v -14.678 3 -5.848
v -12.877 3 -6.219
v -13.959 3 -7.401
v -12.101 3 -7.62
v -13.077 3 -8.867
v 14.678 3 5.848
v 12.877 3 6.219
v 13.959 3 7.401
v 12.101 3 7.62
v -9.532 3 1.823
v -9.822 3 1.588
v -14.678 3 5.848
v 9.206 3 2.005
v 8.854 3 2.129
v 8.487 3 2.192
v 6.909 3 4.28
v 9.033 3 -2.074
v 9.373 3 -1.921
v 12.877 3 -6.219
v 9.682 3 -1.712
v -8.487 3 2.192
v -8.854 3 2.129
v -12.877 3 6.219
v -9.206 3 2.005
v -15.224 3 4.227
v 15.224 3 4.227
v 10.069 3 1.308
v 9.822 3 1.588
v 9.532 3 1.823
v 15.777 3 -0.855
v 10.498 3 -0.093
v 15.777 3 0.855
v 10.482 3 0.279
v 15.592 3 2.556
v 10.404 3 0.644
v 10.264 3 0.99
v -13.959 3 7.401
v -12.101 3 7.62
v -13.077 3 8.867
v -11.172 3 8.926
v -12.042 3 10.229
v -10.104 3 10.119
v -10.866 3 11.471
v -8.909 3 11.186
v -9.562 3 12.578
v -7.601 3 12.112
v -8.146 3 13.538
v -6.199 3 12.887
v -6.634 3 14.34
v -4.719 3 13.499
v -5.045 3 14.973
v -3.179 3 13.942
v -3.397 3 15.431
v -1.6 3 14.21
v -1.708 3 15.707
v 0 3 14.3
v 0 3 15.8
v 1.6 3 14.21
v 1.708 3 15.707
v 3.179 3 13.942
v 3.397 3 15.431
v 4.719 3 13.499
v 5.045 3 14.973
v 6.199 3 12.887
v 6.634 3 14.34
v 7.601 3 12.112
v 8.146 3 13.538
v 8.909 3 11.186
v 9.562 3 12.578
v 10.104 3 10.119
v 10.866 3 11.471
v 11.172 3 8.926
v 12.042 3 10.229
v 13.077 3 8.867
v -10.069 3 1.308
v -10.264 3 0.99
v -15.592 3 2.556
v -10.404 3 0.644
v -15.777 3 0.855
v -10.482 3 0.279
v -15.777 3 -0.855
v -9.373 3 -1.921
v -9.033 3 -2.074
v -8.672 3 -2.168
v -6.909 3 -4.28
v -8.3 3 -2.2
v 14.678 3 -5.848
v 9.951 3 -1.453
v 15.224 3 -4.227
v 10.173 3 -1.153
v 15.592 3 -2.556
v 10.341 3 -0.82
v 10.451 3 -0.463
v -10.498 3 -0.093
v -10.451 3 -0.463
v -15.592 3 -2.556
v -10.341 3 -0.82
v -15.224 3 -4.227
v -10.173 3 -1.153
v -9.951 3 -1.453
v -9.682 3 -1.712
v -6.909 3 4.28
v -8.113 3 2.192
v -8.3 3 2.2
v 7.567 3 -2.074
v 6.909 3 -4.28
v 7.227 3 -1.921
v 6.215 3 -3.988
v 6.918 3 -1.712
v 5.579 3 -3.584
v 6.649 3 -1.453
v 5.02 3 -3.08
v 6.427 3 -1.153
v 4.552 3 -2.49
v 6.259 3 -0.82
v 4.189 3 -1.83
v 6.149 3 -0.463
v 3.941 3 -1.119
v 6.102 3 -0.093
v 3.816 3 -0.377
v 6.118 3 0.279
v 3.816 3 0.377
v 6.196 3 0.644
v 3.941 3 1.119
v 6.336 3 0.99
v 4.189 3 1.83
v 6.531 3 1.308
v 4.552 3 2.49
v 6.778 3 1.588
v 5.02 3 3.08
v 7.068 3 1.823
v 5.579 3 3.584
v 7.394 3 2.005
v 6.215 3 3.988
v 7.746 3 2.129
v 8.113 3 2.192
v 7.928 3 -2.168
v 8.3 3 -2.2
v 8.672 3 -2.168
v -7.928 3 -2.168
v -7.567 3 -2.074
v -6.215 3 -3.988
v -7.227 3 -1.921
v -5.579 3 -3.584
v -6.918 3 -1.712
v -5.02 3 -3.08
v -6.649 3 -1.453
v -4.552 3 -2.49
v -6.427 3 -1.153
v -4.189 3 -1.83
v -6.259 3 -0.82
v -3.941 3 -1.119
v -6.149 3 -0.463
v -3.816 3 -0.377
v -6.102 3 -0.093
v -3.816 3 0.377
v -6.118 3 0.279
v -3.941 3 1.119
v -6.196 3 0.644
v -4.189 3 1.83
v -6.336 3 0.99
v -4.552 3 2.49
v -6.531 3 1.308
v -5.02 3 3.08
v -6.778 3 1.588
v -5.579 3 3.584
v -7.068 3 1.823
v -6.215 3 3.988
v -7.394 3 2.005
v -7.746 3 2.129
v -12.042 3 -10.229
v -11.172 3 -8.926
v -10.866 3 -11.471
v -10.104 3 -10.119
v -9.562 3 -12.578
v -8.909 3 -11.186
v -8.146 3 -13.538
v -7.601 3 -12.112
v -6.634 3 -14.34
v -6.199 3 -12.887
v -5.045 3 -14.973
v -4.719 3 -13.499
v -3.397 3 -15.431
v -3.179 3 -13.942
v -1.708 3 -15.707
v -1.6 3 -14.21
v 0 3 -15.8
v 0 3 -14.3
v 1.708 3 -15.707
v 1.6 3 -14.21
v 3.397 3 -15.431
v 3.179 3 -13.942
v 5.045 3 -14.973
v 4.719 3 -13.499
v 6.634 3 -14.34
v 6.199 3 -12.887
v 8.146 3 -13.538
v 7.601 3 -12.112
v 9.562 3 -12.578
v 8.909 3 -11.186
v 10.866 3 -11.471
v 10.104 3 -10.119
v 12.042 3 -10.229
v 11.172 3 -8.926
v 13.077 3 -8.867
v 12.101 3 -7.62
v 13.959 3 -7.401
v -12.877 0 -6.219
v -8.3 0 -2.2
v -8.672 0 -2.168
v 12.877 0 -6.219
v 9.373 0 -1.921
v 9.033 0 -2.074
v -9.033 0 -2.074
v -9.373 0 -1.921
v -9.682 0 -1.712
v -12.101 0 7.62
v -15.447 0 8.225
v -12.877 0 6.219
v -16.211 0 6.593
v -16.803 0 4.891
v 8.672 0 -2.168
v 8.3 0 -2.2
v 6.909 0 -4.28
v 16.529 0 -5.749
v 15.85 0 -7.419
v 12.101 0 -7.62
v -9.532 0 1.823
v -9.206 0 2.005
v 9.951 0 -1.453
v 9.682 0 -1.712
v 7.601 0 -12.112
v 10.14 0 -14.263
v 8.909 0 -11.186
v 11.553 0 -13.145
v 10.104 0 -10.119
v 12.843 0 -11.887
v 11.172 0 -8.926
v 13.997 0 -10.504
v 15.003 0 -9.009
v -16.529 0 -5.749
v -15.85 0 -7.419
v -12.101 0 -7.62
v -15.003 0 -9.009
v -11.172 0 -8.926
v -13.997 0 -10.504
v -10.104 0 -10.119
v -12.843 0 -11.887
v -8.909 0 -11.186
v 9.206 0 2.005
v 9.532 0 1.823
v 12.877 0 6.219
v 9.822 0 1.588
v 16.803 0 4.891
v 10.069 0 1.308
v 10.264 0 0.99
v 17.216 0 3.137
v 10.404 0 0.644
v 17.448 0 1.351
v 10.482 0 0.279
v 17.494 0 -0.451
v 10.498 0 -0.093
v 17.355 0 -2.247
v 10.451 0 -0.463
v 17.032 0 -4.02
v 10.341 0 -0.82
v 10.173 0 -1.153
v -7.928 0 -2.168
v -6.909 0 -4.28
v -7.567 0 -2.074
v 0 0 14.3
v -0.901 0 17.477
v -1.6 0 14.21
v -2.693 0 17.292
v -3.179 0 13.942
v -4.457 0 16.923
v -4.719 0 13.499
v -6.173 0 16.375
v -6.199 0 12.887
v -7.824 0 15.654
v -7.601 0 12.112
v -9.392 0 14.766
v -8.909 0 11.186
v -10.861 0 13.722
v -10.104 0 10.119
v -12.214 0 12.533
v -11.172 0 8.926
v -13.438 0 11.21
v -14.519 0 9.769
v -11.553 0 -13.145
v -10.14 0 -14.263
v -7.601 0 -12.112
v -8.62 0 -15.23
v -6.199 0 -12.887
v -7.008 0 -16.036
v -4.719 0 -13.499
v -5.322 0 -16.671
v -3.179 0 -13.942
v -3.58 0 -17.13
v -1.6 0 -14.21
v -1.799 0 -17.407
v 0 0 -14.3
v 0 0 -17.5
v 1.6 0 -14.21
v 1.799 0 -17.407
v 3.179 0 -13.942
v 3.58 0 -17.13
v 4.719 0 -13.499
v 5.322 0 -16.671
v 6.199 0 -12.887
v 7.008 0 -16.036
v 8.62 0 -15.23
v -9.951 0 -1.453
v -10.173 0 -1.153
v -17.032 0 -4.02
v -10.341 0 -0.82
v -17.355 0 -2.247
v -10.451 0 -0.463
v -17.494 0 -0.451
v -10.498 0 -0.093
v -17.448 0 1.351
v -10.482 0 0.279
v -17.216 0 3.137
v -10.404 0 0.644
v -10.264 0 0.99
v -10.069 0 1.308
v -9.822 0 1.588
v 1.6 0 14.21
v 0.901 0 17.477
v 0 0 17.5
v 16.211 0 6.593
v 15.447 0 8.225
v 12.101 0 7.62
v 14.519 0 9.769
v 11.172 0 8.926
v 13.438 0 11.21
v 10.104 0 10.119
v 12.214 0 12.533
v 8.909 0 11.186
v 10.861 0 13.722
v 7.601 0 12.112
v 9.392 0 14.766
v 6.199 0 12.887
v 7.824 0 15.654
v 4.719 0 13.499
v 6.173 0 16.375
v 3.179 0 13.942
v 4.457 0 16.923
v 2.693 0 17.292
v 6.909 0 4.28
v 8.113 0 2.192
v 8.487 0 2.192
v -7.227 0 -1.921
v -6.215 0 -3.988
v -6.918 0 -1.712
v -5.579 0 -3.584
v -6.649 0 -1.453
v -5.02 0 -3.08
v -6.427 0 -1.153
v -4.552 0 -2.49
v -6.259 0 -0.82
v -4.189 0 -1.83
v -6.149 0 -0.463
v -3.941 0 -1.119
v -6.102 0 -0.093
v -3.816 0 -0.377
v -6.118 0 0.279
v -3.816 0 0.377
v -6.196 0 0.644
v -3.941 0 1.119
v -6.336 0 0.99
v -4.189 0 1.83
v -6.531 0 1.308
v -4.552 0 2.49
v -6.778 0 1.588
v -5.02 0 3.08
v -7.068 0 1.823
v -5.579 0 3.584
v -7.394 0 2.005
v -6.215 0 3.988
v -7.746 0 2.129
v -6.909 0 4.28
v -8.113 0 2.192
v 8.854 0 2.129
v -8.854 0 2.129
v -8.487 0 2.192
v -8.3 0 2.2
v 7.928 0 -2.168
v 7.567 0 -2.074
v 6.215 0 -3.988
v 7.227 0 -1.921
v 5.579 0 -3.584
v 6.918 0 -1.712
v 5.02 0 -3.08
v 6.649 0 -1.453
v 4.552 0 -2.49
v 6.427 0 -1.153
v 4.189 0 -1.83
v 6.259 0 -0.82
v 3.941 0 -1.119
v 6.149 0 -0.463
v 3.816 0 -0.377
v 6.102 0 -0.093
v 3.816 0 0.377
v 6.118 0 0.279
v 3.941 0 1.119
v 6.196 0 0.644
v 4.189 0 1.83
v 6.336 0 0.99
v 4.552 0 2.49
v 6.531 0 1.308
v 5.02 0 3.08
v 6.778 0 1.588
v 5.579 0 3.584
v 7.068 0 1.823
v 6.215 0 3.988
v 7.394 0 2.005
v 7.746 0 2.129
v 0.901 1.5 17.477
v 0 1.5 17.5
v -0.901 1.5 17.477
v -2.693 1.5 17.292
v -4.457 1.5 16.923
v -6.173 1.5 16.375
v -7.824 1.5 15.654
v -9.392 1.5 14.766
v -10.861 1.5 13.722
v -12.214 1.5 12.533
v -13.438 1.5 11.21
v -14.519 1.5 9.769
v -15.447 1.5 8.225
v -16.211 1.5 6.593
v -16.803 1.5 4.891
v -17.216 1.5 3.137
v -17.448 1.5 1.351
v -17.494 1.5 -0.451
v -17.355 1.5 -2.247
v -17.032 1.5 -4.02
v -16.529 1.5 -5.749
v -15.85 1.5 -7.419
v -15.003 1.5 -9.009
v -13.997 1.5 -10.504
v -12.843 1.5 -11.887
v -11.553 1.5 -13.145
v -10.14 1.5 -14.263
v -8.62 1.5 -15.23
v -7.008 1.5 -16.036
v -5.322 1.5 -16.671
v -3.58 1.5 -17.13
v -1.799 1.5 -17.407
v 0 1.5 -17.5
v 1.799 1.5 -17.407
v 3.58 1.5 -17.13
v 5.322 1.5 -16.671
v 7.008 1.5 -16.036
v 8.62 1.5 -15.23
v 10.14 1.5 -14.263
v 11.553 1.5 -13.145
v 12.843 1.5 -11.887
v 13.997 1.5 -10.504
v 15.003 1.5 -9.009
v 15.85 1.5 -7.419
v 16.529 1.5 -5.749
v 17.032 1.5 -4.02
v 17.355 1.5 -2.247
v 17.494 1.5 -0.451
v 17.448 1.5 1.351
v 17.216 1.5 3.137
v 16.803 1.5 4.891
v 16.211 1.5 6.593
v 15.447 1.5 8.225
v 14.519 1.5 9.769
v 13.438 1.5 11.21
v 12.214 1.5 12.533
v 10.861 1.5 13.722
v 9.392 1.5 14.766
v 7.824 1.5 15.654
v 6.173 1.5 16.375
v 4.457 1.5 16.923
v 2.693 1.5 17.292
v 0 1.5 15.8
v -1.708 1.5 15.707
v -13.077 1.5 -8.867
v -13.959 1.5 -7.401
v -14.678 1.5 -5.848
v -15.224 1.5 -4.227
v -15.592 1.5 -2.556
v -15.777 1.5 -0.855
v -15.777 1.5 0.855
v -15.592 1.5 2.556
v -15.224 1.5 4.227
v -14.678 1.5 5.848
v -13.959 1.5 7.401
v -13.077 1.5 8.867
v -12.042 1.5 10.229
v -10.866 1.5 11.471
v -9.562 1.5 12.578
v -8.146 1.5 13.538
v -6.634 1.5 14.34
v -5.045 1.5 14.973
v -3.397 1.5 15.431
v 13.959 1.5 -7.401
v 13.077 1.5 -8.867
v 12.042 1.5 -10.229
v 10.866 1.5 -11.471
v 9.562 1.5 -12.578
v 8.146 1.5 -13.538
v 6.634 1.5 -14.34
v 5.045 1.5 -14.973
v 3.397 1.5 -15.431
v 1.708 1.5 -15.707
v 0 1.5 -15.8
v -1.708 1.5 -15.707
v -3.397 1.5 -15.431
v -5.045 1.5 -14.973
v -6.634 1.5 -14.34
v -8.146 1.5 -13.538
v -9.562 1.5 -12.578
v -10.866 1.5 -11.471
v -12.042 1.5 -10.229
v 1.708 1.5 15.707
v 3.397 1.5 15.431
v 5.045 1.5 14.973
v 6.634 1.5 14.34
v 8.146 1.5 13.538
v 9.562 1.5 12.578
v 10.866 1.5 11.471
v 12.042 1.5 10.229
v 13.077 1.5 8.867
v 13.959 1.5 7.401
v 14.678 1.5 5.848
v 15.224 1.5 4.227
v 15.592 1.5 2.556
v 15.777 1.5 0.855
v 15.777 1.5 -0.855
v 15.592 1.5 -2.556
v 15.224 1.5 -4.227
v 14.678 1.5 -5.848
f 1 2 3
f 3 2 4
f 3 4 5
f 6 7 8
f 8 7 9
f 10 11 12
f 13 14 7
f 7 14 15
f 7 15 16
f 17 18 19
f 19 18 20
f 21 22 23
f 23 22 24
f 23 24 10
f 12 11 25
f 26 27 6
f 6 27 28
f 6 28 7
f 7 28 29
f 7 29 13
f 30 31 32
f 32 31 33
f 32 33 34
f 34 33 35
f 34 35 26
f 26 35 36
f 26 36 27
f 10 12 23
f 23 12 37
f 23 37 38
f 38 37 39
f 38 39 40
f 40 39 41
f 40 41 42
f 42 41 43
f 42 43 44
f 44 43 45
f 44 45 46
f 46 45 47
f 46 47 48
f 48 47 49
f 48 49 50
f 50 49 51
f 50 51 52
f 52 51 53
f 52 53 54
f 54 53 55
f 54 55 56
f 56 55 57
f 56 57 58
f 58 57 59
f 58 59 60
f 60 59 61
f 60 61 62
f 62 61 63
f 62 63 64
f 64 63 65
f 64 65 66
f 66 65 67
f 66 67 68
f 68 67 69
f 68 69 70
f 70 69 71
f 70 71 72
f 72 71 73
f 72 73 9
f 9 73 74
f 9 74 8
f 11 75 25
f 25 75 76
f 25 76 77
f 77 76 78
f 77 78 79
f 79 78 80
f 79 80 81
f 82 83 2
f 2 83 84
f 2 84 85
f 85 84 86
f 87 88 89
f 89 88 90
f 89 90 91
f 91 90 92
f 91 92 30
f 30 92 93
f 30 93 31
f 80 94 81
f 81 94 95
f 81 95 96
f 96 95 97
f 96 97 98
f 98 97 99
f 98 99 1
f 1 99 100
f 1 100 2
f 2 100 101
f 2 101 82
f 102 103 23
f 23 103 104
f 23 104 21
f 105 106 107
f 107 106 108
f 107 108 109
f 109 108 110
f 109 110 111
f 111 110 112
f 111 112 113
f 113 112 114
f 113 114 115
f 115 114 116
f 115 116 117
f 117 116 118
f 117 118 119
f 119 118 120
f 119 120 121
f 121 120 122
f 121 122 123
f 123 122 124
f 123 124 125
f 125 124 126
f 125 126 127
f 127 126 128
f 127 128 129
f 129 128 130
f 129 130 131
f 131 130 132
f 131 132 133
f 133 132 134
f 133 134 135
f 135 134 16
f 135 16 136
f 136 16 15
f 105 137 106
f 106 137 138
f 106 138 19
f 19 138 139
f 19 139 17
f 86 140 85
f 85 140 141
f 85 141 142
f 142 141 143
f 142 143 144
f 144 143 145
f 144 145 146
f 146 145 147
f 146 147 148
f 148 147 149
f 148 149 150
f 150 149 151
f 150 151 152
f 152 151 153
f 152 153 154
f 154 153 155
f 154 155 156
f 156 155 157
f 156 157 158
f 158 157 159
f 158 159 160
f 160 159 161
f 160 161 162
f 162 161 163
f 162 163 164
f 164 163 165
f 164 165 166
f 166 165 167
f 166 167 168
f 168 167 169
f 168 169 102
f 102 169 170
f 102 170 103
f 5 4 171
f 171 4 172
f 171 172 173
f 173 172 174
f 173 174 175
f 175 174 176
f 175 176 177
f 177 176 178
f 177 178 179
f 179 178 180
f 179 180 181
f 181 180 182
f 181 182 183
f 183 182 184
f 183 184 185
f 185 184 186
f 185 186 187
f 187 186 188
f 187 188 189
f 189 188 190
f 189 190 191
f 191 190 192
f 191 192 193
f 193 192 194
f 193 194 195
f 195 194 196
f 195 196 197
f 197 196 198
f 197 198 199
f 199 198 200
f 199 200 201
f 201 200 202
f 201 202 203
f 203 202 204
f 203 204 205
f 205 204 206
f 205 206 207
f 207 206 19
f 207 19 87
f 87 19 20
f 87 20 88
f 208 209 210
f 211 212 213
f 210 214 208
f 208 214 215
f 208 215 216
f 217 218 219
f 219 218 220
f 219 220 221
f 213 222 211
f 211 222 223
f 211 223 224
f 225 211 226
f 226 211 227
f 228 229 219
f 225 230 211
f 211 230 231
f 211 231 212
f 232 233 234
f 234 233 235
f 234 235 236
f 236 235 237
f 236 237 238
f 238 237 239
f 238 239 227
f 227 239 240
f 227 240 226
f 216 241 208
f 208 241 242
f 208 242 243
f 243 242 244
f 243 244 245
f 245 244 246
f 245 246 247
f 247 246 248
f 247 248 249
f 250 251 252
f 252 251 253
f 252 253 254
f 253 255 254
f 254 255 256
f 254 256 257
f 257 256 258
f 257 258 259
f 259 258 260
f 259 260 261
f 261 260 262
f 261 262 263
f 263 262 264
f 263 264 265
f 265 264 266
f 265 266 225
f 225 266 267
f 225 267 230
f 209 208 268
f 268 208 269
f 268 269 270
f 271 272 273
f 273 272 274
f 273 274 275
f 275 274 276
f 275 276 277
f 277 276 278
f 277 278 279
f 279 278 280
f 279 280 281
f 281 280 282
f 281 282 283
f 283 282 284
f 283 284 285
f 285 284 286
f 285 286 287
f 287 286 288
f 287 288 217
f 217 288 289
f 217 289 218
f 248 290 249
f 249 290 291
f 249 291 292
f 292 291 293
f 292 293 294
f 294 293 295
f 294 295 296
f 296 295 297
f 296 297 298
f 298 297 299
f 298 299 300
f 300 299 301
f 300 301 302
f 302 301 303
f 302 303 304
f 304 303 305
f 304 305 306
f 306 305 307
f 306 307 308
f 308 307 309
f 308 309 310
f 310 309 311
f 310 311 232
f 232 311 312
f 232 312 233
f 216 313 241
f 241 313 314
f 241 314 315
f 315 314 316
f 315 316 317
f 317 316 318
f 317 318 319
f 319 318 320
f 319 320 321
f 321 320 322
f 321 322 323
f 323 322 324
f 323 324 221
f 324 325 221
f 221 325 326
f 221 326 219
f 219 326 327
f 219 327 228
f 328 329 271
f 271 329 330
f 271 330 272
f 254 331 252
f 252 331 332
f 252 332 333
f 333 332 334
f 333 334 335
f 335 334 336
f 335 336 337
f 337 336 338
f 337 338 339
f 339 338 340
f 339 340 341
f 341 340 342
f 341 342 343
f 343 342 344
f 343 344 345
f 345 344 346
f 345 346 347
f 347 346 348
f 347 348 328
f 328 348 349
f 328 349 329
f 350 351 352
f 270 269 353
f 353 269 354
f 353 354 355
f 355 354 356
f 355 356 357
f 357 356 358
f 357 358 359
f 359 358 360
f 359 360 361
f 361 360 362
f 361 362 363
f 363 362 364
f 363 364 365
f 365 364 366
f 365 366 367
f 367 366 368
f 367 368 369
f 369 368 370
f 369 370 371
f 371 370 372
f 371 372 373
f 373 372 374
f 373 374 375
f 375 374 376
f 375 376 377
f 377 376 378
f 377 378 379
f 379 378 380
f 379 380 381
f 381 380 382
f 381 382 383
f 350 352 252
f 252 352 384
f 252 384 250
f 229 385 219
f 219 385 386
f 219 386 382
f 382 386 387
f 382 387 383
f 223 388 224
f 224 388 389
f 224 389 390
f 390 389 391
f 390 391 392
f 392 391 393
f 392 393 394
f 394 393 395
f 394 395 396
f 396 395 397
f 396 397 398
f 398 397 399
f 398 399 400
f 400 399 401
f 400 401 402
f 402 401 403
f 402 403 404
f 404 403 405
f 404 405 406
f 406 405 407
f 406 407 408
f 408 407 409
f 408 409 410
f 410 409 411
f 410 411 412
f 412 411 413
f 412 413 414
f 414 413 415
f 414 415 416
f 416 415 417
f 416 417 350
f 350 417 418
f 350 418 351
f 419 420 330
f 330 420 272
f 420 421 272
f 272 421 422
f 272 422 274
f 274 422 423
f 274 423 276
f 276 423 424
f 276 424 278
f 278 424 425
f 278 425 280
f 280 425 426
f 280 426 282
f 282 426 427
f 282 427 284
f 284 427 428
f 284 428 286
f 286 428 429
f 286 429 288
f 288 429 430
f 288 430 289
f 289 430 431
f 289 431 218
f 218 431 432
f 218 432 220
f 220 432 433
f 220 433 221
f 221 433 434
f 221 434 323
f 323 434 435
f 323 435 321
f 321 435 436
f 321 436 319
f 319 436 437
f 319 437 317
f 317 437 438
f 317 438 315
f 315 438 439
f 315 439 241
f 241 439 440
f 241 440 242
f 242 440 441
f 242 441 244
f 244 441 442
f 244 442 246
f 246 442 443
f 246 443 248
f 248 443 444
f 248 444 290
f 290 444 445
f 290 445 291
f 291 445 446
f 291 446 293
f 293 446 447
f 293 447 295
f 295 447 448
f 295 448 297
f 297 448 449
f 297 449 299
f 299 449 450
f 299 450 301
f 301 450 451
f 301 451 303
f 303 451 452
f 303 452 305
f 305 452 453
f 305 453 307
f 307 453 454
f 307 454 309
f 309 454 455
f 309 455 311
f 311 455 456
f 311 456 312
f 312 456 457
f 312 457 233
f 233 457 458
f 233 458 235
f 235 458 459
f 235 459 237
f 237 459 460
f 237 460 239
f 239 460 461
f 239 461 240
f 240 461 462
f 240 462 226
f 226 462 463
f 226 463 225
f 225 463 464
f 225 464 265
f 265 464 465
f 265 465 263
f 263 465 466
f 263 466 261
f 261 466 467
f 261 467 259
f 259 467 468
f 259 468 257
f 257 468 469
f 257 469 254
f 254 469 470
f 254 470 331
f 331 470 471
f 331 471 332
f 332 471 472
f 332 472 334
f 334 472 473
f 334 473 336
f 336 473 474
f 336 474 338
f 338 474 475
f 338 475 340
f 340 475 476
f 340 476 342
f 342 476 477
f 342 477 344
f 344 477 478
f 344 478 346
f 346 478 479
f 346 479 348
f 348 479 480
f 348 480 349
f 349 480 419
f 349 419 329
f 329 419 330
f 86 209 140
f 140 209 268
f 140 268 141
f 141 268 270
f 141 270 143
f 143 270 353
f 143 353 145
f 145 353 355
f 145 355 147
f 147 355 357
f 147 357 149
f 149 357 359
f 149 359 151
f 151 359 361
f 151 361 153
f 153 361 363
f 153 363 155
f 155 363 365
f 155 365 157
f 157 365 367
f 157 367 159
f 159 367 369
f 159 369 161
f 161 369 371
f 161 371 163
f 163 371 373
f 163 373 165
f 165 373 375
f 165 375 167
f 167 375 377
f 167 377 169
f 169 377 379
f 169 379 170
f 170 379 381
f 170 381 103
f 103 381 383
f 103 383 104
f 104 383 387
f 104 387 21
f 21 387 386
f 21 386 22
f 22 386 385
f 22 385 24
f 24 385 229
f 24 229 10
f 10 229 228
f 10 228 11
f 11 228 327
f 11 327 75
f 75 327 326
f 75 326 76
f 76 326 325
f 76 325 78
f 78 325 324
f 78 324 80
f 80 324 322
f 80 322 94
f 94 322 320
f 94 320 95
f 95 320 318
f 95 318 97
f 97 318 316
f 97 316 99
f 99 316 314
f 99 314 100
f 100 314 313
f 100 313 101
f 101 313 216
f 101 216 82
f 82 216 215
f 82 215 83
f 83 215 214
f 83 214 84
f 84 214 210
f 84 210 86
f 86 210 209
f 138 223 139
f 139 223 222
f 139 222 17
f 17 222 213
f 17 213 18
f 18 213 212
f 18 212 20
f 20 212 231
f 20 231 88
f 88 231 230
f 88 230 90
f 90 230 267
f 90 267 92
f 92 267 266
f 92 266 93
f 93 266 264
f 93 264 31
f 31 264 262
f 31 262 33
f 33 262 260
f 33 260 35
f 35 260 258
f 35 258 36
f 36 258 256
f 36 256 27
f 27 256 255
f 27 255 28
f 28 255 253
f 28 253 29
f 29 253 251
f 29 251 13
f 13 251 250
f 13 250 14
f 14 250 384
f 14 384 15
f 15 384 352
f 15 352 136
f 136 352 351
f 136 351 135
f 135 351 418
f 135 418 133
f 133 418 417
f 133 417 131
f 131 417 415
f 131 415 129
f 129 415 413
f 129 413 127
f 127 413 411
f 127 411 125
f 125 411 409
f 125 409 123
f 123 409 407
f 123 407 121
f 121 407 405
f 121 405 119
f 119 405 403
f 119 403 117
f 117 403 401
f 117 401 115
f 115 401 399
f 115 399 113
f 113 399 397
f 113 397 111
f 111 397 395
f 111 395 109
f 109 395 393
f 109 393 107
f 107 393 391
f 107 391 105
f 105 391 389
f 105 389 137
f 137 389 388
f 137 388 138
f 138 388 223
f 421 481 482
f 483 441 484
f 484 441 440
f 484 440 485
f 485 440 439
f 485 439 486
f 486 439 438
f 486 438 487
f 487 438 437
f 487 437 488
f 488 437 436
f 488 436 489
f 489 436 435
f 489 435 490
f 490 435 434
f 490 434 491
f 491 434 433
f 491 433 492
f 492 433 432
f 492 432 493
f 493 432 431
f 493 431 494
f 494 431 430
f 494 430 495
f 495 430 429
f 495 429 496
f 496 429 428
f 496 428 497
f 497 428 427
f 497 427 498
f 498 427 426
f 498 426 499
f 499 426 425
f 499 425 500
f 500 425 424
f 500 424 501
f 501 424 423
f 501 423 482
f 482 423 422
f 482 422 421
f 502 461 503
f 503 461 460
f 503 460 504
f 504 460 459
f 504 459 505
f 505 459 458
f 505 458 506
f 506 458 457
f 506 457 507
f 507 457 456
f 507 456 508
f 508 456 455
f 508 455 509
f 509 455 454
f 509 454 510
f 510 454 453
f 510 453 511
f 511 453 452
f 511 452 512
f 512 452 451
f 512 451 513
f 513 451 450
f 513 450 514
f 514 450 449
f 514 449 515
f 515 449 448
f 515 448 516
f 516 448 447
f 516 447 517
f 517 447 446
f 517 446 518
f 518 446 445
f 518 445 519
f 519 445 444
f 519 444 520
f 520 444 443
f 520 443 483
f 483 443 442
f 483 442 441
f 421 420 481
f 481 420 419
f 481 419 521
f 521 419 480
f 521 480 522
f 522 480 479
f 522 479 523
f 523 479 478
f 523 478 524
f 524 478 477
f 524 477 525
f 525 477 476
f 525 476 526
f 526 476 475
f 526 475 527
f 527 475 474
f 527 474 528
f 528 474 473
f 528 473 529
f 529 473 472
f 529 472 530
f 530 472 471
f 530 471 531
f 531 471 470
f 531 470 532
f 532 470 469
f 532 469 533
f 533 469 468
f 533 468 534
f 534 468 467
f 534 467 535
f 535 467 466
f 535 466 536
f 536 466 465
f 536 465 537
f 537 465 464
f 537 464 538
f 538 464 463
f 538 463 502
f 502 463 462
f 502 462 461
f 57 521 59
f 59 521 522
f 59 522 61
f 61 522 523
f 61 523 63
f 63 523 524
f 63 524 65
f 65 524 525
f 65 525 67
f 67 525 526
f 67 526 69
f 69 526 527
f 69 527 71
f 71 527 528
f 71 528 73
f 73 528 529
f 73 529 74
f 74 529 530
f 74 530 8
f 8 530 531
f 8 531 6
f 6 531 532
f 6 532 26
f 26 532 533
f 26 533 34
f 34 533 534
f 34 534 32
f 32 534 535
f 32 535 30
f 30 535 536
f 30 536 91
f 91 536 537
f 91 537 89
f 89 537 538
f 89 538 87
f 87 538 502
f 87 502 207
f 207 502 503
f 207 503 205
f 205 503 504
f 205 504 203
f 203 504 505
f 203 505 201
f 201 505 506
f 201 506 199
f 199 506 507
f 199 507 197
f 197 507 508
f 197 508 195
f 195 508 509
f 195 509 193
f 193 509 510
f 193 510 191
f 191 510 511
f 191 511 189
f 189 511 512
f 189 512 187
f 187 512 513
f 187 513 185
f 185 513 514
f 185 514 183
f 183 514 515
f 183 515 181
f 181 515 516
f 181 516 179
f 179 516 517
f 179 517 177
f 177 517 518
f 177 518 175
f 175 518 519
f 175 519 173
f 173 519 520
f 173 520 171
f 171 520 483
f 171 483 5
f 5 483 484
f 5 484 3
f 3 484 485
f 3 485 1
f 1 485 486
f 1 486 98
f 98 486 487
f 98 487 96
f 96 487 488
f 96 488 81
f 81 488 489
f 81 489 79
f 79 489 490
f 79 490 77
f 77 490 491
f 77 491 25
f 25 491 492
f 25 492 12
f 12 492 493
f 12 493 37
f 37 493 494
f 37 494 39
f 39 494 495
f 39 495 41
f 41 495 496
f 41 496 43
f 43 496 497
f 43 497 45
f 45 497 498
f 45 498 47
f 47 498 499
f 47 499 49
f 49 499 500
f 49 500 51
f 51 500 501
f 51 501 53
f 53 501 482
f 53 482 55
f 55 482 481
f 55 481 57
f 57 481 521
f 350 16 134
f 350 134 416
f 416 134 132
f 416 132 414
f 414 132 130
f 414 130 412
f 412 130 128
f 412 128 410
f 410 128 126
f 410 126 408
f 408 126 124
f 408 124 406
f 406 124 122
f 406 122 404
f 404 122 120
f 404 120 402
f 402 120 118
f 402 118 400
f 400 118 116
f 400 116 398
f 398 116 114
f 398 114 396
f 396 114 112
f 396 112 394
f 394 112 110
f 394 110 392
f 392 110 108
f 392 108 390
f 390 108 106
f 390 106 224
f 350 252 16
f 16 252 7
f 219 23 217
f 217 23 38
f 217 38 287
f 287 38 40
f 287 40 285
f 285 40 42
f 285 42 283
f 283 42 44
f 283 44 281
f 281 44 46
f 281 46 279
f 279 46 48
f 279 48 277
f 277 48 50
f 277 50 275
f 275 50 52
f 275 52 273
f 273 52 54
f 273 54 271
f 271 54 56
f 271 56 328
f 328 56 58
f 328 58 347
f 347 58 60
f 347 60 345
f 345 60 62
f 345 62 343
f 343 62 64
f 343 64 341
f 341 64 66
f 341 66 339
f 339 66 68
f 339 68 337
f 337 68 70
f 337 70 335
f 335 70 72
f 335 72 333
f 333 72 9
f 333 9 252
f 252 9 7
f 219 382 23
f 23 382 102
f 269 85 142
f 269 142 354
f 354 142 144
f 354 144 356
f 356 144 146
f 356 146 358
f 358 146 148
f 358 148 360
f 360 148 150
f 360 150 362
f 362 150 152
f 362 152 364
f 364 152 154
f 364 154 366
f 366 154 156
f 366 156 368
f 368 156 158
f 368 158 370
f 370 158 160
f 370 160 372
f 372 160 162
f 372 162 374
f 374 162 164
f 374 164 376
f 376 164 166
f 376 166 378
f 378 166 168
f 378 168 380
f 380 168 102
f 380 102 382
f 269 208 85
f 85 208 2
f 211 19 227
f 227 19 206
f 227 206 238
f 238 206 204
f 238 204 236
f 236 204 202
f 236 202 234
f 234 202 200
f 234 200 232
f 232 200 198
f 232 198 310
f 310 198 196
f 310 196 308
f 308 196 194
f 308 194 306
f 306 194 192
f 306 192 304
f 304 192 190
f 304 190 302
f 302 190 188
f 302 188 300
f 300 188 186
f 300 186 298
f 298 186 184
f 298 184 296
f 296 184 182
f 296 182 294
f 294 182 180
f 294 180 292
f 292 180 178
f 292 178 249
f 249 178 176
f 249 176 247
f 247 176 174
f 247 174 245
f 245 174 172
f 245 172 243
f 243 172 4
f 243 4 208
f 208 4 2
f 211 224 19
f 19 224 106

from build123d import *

# Parameters (mm, degrees)
SKETCH2_R           = 17.5
SKETCH2_R_2         = 2.2
BOSS_EXTRUDE2_DEPTH = 3
SKETCH3_OUTSIDE_W   = 46.918
SKETCH3_OUTSIDE_H   = 46.918
SKETCH3_OUTSIDE_R   = 15.8
CUT_EXTRUDE1_DEPTH  = 1.5
CUT_EXTRUDE2_DEPTH  = 25.929901725


with BuildPart() as part:
    # Sketch2 → Boss-Extrude2 (new body)
    with BuildSketch(Plane(origin=(0, 0, 0), x_dir=(1, 0, 0), z_dir=(0, 1, 0))):
        with Locations(Location((0, 0, 0), (0, 0, 270))):
            Circle(SKETCH2_R)
        with Locations(Location((-8.3, 0, 0), (0, 0, 270))):
            Circle(SKETCH2_R_2, mode=Mode.SUBTRACT)
        with Locations(Location((8.3, 0, 0), (0, 0, 90))):
            Circle(SKETCH2_R_2, mode=Mode.SUBTRACT)
    extrude(amount=BOSS_EXTRUDE2_DEPTH)

    # Sketch3 outside → Cut-Extrude1 (cut)
    with BuildSketch(Plane(origin=(0, 3, 0), x_dir=(1, 0, 0), z_dir=(0, 1, 0))):
        Rectangle(SKETCH3_OUTSIDE_W, SKETCH3_OUTSIDE_H)
        with Locations(Location((0, 0, 0), (0, 0, 270))):
            Circle(SKETCH3_OUTSIDE_R, mode=Mode.SUBTRACT)
    extrude(amount=-CUT_EXTRUDE1_DEPTH, mode=Mode.SUBTRACT)

    # Sketch4 → Cut-Extrude2 (cut, through all)
    with BuildSketch(Plane(origin=(0, 3, 0), x_dir=(1, 0, 0), z_dir=(0, 1, 0))):
        with BuildLine():
            ThreePointArc((-6.909423525, 4.279754323), (-3.8, 0), (-6.909423525, -4.279754323))
            Line((-6.909423525, -4.279754323), (-12.877005888, -6.218739372))
            ThreePointArc((-12.877005888, -6.218739372), (0, -14.3), (12.877005888, -6.218739372))
            Line((12.877005888, -6.218739372), (6.909423525, -4.279754323))
            ThreePointArc((6.909423525, -4.279754323), (3.8, 0), (6.909423525, 4.279754323))
            Line((6.909423525, 4.279754323), (12.877005888, 6.218739372))
            ThreePointArc((12.877005888, 6.218739372), (0, 14.3), (-12.877005888, 6.218739372))
            Line((-12.877005888, 6.218739372), (-6.909423525, 4.279754323))
        make_face()
    extrude(amount=-CUT_EXTRUDE2_DEPTH, mode=Mode.SUBTRACT)


solid = part.part
